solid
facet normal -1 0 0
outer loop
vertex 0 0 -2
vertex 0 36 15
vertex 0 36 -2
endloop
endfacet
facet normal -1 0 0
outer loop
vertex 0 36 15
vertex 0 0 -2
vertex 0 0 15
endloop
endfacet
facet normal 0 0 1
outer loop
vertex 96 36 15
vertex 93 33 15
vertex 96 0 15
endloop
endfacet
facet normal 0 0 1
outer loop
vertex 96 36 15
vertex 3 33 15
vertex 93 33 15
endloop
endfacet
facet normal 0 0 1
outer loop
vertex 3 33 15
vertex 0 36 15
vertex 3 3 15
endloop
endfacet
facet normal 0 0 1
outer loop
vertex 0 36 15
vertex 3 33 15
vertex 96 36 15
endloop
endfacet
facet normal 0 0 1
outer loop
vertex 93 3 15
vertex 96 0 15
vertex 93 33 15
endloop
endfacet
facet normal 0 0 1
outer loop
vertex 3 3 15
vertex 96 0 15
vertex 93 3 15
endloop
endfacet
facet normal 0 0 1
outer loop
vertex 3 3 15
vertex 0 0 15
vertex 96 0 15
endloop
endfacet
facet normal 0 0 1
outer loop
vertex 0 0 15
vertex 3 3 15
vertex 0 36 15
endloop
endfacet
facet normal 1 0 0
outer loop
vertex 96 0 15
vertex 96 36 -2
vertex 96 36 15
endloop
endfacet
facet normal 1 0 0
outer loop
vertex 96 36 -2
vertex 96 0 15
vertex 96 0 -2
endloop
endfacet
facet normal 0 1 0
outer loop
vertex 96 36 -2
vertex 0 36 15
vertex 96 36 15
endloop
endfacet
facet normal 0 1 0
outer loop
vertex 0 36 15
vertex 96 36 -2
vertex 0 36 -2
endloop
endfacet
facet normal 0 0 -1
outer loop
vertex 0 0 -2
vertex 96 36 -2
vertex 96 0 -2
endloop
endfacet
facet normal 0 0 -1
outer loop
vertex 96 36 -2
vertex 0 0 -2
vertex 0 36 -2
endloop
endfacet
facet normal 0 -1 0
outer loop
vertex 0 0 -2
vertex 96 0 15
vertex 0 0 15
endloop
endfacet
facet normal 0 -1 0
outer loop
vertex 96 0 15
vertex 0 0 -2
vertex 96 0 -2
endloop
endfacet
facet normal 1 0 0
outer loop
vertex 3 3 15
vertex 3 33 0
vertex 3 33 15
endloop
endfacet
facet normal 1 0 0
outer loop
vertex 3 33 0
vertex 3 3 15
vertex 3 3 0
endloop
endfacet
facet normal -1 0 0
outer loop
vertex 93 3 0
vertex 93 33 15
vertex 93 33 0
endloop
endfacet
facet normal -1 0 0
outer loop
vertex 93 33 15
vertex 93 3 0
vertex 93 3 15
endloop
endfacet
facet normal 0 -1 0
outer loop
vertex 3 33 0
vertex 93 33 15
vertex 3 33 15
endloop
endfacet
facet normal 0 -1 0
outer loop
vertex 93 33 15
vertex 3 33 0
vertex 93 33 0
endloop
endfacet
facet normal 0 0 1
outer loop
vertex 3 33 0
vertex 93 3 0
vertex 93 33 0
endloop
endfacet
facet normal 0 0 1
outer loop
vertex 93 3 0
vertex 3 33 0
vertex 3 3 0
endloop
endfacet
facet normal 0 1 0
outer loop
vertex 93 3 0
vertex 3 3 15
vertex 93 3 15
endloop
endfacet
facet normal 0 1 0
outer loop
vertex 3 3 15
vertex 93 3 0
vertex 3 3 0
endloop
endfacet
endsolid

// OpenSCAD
//Taken from Python key label script...
BUTTON_COUNT_X=5;
BUTTON_COUNT_Y=8;

BUTTON_WIDTH=120;
BUTTON_HEIGHT=80;
BUTTON_GAP_HORZ=32.4;
BUTTON_GAP_VERT=72.4;
//BUTTON_BORDER_HORZ=20;
//BUTTON_BORDER_VERT=20;

//Added here
BUTTON_THICKNESS=40;

BUTTON_LIP_WIDTH=0; //harder to mold
BUTTON_LIP_HEIGHT=10;
BUTTON_LIP_THICKNESS=12;

SPINE_WIDTH=5*BUTTON_WIDTH+4*BUTTON_GAP_HORZ+BUTTON_LIP_WIDTH*2;
SPINE_HEIGHT=40;
SPINE_THICKNESS=BUTTON_LIP_THICKNESS;

SPRUE_WIDTH=12;
SPRUE_LENGTH=100;
SPRUE_THICKNESS=12;
SPRUE_X_OFFSET=15;
SPRUE_Y_OFFSET=0;

MOLD_BOTTOM_THICKNESS=20;
MOLD_WALL_THICKNESS=30;
MOLD_INNER_WIDTH=900;
MOLD_INNER_HEIGHT=300;
MOLD_INNER_THICKNESS=150;

scale([0.1,0.1,0.1])
{
  union()
  {
    //translate([100,120,0])
      //key_row();
    mold_box();
  }
}


module mold_box()
{
  difference()
  {
    translate([0,0,-MOLD_BOTTOM_THICKNESS])
    cube([MOLD_INNER_WIDTH+
      MOLD_WALL_THICKNESS*2,
      MOLD_INNER_HEIGHT+MOLD_WALL_THICKNESS*2,
      MOLD_BOTTOM_THICKNESS+MOLD_INNER_THICKNESS]);
    translate([MOLD_WALL_THICKNESS,
      MOLD_WALL_THICKNESS,0])
    cube([MOLD_INNER_WIDTH,MOLD_INNER_HEIGHT,
      MOLD_INNER_THICKNESS+
      MOLD_BOTTOM_THICKNESS]);
  }
}


module key_row()
{

union()
{

for (i=[0:BUTTON_COUNT_X-1])
{
  translate([(BUTTON_WIDTH+BUTTON_GAP_HORZ)*i,
  0,0])
  {
    union()
    {

      //Bottom lip
      //(note lip on bottom AND top!!!)
      cube([BUTTON_LIP_WIDTH*2+BUTTON_WIDTH,
        BUTTON_LIP_HEIGHT*2+BUTTON_HEIGHT,
        BUTTON_LIP_THICKNESS]);

      //Button
      translate([BUTTON_LIP_WIDTH,
        BUTTON_LIP_HEIGHT,0])
      cube([BUTTON_WIDTH,
        BUTTON_HEIGHT,
        BUTTON_THICKNESS]);

      //Try with one sided dump mold first
      /*
      //Sprue
      translate([SPRUE_X_OFFSET,
        SPRUE_Y_OFFSET,0])
      rotate([0,0,150])
      cube([SPRUE_WIDTH,SPRUE_LENGTH,
        SPRUE_THICKNESS]);
      */
    }
  }
}

//Spine
translate([0,BUTTON_LIP_HEIGHT*2+BUTTON_HEIGHT,
  0])
cube([SPINE_WIDTH, SPINE_HEIGHT,
  SPINE_THICKNESS]);

}

}
